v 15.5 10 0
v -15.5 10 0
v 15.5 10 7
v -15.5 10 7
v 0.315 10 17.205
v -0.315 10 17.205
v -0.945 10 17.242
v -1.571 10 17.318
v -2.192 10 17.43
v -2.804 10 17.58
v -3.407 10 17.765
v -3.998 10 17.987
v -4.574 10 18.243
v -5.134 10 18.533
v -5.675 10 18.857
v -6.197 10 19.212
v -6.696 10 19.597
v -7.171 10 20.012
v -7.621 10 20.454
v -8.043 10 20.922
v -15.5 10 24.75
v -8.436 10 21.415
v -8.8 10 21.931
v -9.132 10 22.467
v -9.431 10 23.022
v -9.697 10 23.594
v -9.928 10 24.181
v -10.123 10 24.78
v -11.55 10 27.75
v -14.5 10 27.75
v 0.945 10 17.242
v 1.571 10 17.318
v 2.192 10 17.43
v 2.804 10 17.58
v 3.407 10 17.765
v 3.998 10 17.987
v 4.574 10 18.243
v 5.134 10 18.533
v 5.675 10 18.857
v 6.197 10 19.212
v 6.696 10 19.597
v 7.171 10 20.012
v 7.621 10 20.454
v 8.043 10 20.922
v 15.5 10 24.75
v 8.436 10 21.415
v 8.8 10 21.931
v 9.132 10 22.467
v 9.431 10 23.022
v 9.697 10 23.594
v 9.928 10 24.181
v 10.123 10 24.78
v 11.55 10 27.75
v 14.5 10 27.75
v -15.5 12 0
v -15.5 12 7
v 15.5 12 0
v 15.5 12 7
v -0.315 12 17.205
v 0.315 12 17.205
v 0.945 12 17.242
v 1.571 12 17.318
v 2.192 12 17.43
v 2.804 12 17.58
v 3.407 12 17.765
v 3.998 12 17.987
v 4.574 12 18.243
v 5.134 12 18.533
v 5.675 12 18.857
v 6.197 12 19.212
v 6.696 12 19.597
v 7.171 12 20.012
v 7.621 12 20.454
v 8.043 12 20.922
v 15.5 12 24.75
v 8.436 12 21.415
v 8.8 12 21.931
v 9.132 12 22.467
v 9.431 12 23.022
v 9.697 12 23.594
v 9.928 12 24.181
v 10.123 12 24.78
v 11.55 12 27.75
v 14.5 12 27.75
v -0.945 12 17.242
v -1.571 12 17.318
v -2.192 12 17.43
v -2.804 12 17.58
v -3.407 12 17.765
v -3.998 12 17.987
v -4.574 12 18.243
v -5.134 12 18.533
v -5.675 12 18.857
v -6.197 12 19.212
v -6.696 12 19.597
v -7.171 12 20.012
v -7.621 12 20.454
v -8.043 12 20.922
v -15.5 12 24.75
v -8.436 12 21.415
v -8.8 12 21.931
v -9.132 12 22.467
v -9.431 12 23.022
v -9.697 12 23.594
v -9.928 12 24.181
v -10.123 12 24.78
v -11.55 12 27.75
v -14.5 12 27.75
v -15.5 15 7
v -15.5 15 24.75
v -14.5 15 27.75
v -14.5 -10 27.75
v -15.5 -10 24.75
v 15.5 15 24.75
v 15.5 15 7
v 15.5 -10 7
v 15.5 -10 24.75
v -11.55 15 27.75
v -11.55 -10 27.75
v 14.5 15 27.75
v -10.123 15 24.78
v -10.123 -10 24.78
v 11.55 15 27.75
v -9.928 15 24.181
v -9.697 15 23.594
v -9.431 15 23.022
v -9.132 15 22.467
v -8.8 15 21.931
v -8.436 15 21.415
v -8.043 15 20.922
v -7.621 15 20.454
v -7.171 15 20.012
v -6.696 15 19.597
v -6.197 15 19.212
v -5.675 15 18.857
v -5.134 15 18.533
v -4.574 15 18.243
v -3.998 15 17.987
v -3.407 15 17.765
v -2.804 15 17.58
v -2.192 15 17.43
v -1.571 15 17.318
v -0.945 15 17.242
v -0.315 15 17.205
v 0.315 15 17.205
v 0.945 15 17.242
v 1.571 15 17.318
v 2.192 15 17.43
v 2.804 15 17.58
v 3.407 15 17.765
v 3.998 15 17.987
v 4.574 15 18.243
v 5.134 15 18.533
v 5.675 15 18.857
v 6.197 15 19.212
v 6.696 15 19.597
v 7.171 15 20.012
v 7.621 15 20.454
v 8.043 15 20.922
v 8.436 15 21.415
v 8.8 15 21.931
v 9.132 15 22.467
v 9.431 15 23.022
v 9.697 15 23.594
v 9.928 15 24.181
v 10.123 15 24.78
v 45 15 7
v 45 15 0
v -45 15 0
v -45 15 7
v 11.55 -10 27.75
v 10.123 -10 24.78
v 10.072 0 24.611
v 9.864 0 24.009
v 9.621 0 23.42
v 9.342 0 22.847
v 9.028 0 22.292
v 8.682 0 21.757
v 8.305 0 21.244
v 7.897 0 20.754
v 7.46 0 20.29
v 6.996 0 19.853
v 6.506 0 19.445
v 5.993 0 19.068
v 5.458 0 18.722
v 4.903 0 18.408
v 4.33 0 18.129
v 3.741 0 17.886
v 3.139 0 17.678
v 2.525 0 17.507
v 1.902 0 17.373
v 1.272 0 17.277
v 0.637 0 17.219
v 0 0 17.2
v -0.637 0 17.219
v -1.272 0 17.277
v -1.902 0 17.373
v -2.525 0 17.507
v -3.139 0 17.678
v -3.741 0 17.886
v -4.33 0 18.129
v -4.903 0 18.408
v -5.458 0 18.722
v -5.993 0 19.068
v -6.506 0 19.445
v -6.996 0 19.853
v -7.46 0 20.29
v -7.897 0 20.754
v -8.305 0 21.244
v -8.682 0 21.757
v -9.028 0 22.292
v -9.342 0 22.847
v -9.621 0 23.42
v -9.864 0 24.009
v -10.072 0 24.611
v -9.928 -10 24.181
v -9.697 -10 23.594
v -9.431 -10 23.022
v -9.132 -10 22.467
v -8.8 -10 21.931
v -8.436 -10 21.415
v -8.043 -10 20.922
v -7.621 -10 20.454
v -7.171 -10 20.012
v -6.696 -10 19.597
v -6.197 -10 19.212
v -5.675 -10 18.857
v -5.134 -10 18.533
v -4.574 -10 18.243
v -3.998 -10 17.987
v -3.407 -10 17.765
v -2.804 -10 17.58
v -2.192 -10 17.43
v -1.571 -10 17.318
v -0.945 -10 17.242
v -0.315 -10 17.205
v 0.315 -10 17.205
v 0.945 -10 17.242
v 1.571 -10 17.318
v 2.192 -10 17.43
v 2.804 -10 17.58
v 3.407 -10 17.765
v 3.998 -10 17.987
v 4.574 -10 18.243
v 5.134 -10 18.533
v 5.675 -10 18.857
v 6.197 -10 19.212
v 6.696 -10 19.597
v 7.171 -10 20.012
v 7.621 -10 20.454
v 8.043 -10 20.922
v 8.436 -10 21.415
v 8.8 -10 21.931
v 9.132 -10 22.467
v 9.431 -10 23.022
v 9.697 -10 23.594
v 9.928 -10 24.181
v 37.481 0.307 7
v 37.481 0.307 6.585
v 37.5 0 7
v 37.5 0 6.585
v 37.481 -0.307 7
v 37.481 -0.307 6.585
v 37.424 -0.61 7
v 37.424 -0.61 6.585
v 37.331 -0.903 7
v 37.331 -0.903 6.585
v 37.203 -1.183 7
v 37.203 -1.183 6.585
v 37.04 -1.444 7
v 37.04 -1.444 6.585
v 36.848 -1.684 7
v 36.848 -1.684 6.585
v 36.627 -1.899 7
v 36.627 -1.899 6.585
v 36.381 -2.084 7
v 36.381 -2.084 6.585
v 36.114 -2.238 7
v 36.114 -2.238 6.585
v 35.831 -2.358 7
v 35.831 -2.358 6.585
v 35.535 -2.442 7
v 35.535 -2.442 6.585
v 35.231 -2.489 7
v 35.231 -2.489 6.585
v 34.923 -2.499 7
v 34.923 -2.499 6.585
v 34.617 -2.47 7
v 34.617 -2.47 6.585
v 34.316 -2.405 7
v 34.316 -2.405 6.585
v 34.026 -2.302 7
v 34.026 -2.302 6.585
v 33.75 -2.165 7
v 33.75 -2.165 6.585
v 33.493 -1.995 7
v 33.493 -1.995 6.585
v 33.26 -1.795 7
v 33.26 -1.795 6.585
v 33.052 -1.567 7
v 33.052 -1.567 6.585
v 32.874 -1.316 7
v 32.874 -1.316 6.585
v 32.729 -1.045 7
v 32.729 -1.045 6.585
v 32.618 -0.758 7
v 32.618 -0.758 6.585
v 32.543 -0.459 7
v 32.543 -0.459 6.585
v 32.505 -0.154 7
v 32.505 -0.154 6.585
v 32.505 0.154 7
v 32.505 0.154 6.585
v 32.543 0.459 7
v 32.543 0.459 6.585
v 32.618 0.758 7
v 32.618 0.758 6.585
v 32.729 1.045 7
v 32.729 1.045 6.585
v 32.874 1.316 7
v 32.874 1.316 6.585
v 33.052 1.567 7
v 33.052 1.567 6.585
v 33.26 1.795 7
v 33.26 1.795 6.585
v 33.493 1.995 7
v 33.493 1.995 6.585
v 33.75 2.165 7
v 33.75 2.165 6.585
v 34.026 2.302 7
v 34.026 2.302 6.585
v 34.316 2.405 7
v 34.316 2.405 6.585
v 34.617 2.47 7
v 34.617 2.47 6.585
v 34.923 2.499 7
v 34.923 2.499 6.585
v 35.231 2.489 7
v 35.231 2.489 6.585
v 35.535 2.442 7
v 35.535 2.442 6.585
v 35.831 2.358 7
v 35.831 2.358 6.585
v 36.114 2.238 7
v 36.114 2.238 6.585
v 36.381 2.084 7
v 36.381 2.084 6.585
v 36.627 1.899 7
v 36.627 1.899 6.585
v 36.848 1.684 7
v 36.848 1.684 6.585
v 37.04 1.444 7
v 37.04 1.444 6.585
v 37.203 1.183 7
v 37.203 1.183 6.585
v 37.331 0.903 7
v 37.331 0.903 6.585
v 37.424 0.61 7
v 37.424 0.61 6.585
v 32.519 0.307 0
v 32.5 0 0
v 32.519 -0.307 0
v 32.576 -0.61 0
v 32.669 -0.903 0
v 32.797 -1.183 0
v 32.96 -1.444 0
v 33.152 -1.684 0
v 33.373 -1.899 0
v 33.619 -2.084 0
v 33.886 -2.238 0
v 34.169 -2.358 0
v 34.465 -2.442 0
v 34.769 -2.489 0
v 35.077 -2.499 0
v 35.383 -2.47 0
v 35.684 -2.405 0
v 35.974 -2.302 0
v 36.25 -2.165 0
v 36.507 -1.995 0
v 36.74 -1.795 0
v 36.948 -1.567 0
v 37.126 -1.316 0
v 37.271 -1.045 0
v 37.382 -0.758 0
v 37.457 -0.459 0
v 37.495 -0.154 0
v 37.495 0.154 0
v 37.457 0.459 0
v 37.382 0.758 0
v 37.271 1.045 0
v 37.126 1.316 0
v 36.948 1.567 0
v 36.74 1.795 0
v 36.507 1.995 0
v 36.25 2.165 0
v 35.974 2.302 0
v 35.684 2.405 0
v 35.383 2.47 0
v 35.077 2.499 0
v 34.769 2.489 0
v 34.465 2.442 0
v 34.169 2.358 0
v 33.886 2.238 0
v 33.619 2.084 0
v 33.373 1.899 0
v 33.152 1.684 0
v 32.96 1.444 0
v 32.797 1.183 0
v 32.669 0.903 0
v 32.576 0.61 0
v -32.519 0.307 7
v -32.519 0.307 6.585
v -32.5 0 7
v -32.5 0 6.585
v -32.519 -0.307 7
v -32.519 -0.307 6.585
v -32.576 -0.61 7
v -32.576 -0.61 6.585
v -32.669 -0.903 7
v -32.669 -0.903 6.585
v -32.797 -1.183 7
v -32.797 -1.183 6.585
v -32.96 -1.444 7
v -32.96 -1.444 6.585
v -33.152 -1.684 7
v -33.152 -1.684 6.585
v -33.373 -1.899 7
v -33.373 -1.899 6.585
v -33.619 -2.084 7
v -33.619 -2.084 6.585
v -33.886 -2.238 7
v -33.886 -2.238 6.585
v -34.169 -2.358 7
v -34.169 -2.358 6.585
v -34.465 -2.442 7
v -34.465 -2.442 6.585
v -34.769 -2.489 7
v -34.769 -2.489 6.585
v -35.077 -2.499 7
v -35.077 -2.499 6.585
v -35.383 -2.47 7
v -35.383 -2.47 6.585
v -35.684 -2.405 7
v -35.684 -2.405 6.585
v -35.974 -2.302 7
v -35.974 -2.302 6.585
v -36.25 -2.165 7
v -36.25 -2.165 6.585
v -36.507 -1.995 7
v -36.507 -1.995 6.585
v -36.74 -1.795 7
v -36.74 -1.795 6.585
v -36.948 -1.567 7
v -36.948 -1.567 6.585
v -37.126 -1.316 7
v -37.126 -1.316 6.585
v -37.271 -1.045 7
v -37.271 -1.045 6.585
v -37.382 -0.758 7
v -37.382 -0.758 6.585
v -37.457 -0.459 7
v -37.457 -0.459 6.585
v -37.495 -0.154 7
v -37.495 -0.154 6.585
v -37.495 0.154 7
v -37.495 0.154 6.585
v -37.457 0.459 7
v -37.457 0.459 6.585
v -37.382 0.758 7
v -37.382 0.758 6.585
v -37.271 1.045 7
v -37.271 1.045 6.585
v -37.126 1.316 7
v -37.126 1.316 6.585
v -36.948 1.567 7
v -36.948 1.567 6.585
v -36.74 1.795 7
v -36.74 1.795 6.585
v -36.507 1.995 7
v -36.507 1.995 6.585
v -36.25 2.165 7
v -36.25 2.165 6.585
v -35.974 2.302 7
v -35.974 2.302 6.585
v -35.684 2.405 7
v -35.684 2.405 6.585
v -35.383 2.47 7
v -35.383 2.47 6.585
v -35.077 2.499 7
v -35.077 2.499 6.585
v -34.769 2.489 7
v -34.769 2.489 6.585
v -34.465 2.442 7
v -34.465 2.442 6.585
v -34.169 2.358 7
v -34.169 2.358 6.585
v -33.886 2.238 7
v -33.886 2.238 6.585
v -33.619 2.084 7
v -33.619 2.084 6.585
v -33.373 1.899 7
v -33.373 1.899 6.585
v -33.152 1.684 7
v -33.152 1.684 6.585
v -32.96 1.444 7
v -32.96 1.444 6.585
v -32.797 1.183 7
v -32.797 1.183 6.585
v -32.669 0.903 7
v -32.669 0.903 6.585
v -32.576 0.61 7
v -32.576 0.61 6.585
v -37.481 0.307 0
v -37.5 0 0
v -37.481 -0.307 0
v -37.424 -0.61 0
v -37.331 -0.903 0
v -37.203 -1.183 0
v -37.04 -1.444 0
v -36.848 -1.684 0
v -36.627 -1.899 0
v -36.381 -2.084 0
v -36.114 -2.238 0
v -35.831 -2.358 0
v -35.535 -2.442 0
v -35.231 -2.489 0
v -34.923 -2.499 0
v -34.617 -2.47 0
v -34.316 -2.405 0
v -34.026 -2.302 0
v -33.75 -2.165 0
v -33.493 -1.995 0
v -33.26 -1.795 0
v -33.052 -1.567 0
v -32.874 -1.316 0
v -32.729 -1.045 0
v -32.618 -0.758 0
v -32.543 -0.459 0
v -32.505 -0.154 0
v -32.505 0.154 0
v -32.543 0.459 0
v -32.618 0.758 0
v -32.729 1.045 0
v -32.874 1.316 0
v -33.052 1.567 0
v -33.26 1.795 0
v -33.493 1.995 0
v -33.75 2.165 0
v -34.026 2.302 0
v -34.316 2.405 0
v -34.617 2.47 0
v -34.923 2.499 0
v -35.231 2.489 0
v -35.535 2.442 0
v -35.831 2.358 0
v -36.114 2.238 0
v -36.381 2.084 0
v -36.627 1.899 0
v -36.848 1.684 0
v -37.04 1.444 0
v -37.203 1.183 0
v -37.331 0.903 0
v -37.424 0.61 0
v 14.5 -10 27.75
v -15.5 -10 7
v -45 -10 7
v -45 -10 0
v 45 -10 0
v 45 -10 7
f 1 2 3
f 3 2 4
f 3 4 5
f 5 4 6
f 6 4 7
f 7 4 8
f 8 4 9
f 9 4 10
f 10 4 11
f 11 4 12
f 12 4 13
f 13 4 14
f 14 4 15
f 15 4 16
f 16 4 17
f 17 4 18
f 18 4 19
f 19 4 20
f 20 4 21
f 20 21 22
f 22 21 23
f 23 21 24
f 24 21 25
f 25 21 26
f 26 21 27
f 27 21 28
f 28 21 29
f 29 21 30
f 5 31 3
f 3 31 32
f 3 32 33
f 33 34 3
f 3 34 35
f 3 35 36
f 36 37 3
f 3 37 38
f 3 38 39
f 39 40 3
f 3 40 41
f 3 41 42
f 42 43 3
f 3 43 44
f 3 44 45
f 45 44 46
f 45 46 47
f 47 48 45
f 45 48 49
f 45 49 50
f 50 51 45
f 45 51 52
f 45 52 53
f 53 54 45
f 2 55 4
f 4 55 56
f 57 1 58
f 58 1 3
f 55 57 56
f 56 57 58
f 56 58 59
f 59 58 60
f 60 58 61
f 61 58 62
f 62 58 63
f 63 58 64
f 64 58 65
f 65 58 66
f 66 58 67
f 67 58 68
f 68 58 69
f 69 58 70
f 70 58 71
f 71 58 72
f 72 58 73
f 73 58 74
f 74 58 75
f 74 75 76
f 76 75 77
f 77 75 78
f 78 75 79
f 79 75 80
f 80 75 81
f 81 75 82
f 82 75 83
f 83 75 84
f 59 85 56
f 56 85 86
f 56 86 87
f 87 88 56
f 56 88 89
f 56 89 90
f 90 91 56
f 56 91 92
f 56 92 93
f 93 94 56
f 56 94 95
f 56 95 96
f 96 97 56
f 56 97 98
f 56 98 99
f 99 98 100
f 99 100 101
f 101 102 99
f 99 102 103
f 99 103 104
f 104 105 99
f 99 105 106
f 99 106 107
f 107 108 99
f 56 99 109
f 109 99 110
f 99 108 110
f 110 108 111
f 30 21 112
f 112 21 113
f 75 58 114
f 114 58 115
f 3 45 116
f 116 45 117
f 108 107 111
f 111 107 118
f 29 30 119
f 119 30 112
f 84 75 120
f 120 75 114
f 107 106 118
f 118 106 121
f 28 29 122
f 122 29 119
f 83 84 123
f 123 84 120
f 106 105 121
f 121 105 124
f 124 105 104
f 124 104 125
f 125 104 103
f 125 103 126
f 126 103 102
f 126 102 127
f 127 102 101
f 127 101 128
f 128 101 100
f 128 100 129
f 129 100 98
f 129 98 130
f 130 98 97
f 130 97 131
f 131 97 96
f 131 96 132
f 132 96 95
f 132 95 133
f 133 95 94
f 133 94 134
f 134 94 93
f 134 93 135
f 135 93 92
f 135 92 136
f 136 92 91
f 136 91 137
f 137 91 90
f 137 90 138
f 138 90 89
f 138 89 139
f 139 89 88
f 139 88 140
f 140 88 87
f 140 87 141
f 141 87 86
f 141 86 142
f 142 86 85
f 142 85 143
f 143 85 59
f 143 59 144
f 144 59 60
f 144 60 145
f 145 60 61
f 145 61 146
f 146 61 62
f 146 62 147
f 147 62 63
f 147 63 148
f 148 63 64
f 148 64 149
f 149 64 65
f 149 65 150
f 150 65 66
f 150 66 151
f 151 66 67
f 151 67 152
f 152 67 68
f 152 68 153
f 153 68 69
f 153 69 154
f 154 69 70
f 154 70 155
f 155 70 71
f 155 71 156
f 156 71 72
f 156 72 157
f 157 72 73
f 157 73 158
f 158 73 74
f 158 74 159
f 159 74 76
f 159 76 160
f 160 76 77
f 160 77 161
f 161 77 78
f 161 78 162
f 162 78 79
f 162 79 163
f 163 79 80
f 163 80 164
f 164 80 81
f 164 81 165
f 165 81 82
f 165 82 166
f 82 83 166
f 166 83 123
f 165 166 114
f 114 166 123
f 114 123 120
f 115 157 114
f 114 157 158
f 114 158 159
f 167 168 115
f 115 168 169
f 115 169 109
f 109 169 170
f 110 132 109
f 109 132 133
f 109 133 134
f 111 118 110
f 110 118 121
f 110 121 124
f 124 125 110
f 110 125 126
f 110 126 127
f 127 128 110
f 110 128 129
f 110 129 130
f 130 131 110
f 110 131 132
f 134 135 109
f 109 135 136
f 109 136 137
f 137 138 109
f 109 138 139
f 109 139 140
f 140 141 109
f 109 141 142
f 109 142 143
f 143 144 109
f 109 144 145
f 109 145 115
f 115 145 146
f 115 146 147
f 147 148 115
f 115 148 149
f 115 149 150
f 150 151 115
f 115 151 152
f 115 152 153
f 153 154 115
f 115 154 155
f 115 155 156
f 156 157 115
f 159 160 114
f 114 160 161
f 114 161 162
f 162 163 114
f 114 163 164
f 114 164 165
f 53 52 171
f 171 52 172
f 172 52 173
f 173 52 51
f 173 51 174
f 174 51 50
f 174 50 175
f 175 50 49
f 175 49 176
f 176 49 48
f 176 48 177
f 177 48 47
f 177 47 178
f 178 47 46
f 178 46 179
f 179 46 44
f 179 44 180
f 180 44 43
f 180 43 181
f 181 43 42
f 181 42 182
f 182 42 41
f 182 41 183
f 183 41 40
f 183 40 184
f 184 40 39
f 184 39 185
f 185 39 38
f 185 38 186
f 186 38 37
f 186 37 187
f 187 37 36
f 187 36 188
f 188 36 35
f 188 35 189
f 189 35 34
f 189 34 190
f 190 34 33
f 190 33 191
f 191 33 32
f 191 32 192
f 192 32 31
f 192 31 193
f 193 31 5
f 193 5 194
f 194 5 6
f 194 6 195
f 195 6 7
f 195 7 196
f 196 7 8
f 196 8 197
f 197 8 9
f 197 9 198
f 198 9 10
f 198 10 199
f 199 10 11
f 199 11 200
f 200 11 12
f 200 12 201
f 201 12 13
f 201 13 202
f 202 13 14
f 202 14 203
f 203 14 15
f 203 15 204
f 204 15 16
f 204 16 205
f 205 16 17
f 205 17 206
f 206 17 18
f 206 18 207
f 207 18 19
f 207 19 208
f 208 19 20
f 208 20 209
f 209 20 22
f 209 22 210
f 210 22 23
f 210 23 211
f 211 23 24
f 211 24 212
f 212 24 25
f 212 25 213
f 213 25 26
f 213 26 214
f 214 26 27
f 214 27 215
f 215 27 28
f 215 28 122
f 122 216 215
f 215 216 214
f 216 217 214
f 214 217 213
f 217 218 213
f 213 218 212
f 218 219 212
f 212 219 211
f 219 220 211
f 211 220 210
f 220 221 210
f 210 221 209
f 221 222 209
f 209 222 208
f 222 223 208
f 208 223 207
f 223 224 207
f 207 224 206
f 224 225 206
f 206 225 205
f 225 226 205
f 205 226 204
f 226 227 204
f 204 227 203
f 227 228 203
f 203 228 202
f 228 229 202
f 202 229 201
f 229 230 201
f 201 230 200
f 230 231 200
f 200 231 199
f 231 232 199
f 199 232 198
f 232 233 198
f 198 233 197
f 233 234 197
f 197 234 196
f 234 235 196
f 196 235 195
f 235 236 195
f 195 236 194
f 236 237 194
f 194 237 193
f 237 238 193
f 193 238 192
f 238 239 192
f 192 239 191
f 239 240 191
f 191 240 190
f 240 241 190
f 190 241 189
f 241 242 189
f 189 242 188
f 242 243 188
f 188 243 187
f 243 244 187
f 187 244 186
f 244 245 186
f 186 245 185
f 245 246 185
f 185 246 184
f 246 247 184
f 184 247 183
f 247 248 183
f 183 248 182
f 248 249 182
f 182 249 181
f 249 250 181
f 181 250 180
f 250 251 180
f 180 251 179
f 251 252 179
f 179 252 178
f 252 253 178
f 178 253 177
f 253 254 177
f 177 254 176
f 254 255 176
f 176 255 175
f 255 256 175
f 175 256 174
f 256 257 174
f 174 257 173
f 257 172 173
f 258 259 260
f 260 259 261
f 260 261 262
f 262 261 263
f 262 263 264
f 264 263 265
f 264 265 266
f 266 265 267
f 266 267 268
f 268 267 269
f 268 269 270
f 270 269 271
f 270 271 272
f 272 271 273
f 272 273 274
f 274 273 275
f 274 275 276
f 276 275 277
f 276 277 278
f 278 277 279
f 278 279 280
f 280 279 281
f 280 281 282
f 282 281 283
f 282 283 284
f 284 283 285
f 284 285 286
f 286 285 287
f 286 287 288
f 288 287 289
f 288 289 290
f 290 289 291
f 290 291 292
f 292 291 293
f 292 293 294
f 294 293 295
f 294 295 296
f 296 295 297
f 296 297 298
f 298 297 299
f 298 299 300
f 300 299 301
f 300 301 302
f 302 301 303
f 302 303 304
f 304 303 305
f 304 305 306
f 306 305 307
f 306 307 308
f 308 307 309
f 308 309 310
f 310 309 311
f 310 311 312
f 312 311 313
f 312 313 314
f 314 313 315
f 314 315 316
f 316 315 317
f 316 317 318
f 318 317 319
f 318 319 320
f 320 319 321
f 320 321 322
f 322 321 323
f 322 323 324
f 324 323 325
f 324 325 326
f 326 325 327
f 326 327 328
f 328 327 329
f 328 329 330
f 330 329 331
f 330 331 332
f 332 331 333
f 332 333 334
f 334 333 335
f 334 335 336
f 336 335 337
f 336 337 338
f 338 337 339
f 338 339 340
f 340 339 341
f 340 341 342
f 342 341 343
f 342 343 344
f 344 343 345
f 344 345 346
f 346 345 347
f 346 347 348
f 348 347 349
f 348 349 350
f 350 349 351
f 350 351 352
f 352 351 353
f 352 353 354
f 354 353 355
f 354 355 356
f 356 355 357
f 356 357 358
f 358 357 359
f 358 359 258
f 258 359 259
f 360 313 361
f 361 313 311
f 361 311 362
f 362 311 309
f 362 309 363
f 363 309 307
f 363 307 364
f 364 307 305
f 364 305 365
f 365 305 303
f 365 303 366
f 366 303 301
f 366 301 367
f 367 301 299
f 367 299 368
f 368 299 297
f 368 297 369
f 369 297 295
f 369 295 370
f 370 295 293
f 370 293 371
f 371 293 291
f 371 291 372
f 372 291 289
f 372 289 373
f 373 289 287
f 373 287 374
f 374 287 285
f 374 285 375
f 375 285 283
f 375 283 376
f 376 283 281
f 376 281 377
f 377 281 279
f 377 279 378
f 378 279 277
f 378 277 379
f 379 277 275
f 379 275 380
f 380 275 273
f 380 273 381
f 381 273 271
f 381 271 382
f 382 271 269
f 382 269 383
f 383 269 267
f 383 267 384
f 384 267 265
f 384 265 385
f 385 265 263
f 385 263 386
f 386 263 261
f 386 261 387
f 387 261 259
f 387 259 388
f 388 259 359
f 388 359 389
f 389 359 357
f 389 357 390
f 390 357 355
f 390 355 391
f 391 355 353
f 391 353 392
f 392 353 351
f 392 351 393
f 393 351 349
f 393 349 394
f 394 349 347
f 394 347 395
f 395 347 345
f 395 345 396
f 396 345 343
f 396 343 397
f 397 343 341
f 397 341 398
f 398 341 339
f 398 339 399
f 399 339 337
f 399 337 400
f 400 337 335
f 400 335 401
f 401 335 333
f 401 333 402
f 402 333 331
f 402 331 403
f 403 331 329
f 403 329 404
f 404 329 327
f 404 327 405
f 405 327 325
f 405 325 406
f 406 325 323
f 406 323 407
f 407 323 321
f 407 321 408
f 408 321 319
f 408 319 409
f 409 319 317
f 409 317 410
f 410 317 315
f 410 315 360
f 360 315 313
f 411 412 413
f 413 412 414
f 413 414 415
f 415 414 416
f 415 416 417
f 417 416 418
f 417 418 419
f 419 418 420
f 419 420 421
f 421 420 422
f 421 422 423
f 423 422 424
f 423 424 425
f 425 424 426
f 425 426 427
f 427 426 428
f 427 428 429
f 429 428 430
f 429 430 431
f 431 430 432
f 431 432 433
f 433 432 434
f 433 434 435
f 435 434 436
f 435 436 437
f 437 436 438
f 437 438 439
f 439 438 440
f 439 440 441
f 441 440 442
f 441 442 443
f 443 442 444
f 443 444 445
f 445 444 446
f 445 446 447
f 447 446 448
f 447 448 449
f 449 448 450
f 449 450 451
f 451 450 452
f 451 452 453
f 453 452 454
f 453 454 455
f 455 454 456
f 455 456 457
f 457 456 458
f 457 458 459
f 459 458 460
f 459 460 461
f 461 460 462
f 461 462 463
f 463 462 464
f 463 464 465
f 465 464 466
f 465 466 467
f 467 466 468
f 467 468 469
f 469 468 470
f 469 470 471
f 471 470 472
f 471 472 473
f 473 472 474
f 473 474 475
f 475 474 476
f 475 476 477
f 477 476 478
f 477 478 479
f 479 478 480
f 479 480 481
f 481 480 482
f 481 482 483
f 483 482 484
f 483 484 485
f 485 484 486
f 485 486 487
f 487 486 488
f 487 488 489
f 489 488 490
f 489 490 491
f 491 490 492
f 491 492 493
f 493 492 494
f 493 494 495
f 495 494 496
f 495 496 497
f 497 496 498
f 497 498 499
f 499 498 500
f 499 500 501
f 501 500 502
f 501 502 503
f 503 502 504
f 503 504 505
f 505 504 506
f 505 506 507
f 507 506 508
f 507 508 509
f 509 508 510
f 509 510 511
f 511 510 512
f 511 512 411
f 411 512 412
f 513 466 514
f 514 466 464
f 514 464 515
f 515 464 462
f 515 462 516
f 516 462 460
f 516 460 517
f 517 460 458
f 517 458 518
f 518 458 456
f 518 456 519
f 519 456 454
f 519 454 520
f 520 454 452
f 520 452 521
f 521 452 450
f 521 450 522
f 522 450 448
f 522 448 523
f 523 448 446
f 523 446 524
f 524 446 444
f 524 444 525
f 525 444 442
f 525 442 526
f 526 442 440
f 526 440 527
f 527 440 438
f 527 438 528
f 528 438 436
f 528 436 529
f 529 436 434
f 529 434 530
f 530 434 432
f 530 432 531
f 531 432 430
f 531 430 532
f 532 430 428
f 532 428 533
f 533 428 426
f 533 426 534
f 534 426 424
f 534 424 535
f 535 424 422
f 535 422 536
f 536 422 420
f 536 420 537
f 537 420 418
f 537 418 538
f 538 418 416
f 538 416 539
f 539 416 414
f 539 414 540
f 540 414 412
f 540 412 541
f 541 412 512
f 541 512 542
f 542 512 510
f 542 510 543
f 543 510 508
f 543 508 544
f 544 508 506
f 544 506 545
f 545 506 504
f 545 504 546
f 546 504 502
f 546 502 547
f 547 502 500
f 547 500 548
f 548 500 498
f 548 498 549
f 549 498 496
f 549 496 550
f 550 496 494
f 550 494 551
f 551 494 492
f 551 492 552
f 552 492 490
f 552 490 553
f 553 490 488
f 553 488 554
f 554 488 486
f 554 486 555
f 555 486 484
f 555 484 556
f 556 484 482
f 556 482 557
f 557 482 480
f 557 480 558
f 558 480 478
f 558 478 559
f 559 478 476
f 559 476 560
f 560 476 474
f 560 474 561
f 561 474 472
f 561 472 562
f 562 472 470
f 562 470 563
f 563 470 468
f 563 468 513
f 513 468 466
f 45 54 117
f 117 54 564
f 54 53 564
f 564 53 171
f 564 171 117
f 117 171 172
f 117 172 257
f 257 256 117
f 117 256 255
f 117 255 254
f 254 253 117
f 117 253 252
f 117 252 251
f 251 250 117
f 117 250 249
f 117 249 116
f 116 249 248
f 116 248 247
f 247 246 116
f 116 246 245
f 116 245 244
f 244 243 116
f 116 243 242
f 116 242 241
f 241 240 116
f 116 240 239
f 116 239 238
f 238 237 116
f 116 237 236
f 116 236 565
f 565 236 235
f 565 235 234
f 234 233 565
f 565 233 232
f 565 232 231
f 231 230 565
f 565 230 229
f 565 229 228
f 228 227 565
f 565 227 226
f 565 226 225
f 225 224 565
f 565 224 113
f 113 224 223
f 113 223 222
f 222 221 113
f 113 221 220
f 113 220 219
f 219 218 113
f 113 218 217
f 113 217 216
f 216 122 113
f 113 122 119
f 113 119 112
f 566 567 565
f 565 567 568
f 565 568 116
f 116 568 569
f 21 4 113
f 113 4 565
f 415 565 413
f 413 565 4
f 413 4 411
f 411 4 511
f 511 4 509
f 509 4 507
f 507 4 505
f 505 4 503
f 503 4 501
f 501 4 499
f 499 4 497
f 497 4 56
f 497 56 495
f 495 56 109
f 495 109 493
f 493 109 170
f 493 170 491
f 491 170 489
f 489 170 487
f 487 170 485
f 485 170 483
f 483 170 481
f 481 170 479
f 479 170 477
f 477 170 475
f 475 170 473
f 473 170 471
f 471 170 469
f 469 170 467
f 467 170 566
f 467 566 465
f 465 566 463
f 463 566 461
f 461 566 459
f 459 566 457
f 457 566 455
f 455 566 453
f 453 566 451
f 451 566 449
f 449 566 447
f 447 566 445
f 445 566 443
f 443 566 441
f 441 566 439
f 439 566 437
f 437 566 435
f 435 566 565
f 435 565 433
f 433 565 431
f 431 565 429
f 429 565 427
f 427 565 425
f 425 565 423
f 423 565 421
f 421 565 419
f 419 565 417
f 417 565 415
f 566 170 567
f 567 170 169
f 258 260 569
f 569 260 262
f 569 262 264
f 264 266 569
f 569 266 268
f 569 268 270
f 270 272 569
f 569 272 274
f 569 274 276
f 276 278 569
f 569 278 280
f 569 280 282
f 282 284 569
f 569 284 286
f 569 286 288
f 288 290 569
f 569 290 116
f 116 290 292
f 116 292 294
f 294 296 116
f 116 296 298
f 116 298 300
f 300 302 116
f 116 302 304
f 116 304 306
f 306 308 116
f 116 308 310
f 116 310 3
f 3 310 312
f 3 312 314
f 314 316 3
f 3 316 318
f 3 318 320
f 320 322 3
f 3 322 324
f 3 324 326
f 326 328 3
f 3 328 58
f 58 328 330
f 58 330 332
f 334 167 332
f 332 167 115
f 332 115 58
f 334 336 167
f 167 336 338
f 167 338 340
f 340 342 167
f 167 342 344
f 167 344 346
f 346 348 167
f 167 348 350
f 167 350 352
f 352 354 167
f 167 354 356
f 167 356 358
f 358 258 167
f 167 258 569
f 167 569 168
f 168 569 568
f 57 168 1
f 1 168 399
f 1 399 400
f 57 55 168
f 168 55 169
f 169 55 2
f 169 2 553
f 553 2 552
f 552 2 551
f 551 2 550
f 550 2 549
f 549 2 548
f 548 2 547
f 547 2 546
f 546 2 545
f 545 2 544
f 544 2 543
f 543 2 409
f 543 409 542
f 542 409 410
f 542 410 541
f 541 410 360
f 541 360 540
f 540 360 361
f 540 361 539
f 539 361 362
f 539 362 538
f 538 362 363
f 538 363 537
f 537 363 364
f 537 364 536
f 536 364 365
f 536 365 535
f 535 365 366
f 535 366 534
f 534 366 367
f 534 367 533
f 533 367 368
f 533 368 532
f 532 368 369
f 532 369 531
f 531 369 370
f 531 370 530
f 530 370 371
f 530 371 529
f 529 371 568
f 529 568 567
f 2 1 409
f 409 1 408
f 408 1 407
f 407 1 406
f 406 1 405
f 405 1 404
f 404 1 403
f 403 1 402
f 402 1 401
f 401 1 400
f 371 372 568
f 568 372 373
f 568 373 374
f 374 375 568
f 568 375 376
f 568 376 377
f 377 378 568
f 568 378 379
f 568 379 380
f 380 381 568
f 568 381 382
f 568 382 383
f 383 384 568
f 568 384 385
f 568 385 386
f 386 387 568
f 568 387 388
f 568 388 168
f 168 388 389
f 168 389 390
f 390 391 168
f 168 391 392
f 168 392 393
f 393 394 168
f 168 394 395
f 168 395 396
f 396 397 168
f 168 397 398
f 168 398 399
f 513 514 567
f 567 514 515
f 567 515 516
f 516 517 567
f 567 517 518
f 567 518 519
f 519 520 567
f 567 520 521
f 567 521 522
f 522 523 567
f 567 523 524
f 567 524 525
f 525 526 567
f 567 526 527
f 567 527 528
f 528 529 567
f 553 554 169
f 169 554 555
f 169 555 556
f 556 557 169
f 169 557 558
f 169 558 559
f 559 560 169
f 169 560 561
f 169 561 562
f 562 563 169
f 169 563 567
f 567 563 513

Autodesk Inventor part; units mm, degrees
ref_plane "YZ Plane" through (0, 0, 0) normal (1, 0, 0) x (0, 1, 0)
ref_plane "XZ Plane" through (0, 0, 0) normal (0, 1, 0) x (-1, 0, 0)
ref_plane "XY Plane" through (0, 0, 0) normal (0, 0, 1) x (1, 0, 0)
sketch "Sketch1" plane through (0, 0, 0) normal (0, 0, 1) x (1, 0, 0)
  line L0 (-45, 10) -> (45, 10)
  line L1 (45, 10) -> (45, -10)
  line L2 (45, -10) -> (-45, -10)
  line L3 (-45, -10) -> (-45, 10)
  point P0 (0, 0)
  point P1 (0, 10)
  point P2 (-45, 0)
  dimension "d0" = 20
  dimension "d1" = 90
extrude "Extrusion1" add sketch "Sketch1" along normal blind 27.75
sketch "Sketch3" plane through (-45, 10, 0) normal (0, 1, 0) x (1, 0, 0)
  line L0 (90, 0) -> (90, -27.75) projected
  line L1 (90, -27.75) -> (0, -27.75) projected
  line L2 (90, -27.75) -> (60.5, -27.75)
  line L3 (60.5, -27.75) -> (60.5, -7)
  line L4 (60.5, -7) -> (90, -7)
  line L5 (90, -7) -> (90, -27.75)
  line L6 (83, -7) -> (95, -7) projected
  line L7 (90, 0) -> (0, 0) projected
  point P0 (45, 0)
  point P1 (60.5, -27.75)
  dimension "d8" = 20.75
  dimension "d20" = 15.5
  dimension "d40" = 7
extrude "Extrusion2" cut sketch "Sketch3" against normal through all
mirror "Mirror1" about plane through (0, 0, 0) normal (1, 0, 0) of "Extrusion2"
sketch "Sketch4" plane through (-45, 10, 0) normal (0, 1, 0) x (1, 0, 0)
  circle A0 centre (45, -27.75) radius 10.55
  line L0 (90, 0) -> (0, 0) projected
  line L1 (60.5, -27.75) -> (29.5, -27.75) projected
  point P0 (45, 0)
  point P1 (45, 0)
  dimension "d32" = 21.1
  dimension "d39" = 0
extrude "Extrusion3" cut sketch "Sketch4" against normal through all
chamfer "Chamfer1" distance 1 distance2 3 1 edges at (-15.5, 0, 27.75) measured on face at (-12.2, -3.3333, 27.75)
chamfer "Chamfer2" distance 1 distance2 3 1 edges at (15.5, 0, 27.75) measured on face at (12.2, 3.3333, 27.75)
sketch "Sketch5" plane through (0, 0, 0) normal (0, 0, -1) x (-1, 0, 0)
  line L0 (45, -10) -> (-45, -10) projected
  line L1 (0, 23.0048) -> (0, -23.0048) construction
  point P0 (0, 0)
  point P1 (-35, 0)
  point P2 (35, 0)
  point P3 (0, 0)
  dimension "d23" = 70
hole "Hole1" at (35, 0, 0) at (-35, 0, 0) direction (0, 0, 1) diameter 5 end through all
chamfer "Chamfer3" distance 1 distance2 3 2 edges at (10.55, 0, 27.75) (-10.55, 0, 27.75) measured on face at (13.1833, -3.3333, 27.75) measured on face at (-13.1833, -3.3333, 27.75)
chamfer_without_effect "Chamfer4"
sketch "Sketch6" plane through (-45, 10, 0) normal (0, 1, 0) x (1, 0, 0)
  line L0 (56.55, -27.75) -> (55.1235, -24.7805) projected
  line L1 (59.5, -27.75) -> (56.55, -27.75) projected
  line L2 (60.5, -24.75) -> (59.5, -27.75) projected
  line L3 (60.5, -24.75) -> (60.5, -7) projected
  line L4 (60.5, -7) -> (90, -7) projected
  line L5 (90, 0) -> (90, -7) projected
  line L6 (90, 0) -> (0, 0) projected
  line L7 (0, 0) -> (0, -7) projected
  line L8 (0, -7) -> (29.5, -7) projected
  line L9 (29.5, -7) -> (29.5, -24.75) projected
  line L10 (30.5, -27.75) -> (29.5, -24.75) projected
  line L11 (33.45, -27.75) -> (30.5, -27.75) projected
  line L12 (34.8765, -24.7805) -> (33.45, -27.75) projected
  arc A0 (55.1235, -24.7805) -> (34.8765, -24.7805) centre (45, -27.75) ccw projected
  point P0 (45, 0)
extrude "Extrusion4" add sketch "Sketch6" along normal blind 5
sketch "Sketch7" plane through (-45, -10, 7) normal (0, 0, 1) x (1, 0, 0)
  line L0 (13, 20) -> (27.9, 20) projected
  line L1 (29.5, 22) -> (60.5, 22)
  line L2 (60.5, 22) -> (60.5, 20)
  line L3 (60.5, 20) -> (29.5, 20)
  line L4 (29.5, 20) -> (29.5, 22)
  line L5 (60.5, 25) -> (60.5, 0) projected
  line L6 (29.5, 25) -> (29.5, 0) projected
  point P0 (45, 10)
  dimension "d43" = 2
extrude "Extrusion5" cut sketch "Sketch7" along normal through all both and the other way through all
properties part number "0008-10-057  Fixare seringa 20 Ml" material "ABS Plastic"
